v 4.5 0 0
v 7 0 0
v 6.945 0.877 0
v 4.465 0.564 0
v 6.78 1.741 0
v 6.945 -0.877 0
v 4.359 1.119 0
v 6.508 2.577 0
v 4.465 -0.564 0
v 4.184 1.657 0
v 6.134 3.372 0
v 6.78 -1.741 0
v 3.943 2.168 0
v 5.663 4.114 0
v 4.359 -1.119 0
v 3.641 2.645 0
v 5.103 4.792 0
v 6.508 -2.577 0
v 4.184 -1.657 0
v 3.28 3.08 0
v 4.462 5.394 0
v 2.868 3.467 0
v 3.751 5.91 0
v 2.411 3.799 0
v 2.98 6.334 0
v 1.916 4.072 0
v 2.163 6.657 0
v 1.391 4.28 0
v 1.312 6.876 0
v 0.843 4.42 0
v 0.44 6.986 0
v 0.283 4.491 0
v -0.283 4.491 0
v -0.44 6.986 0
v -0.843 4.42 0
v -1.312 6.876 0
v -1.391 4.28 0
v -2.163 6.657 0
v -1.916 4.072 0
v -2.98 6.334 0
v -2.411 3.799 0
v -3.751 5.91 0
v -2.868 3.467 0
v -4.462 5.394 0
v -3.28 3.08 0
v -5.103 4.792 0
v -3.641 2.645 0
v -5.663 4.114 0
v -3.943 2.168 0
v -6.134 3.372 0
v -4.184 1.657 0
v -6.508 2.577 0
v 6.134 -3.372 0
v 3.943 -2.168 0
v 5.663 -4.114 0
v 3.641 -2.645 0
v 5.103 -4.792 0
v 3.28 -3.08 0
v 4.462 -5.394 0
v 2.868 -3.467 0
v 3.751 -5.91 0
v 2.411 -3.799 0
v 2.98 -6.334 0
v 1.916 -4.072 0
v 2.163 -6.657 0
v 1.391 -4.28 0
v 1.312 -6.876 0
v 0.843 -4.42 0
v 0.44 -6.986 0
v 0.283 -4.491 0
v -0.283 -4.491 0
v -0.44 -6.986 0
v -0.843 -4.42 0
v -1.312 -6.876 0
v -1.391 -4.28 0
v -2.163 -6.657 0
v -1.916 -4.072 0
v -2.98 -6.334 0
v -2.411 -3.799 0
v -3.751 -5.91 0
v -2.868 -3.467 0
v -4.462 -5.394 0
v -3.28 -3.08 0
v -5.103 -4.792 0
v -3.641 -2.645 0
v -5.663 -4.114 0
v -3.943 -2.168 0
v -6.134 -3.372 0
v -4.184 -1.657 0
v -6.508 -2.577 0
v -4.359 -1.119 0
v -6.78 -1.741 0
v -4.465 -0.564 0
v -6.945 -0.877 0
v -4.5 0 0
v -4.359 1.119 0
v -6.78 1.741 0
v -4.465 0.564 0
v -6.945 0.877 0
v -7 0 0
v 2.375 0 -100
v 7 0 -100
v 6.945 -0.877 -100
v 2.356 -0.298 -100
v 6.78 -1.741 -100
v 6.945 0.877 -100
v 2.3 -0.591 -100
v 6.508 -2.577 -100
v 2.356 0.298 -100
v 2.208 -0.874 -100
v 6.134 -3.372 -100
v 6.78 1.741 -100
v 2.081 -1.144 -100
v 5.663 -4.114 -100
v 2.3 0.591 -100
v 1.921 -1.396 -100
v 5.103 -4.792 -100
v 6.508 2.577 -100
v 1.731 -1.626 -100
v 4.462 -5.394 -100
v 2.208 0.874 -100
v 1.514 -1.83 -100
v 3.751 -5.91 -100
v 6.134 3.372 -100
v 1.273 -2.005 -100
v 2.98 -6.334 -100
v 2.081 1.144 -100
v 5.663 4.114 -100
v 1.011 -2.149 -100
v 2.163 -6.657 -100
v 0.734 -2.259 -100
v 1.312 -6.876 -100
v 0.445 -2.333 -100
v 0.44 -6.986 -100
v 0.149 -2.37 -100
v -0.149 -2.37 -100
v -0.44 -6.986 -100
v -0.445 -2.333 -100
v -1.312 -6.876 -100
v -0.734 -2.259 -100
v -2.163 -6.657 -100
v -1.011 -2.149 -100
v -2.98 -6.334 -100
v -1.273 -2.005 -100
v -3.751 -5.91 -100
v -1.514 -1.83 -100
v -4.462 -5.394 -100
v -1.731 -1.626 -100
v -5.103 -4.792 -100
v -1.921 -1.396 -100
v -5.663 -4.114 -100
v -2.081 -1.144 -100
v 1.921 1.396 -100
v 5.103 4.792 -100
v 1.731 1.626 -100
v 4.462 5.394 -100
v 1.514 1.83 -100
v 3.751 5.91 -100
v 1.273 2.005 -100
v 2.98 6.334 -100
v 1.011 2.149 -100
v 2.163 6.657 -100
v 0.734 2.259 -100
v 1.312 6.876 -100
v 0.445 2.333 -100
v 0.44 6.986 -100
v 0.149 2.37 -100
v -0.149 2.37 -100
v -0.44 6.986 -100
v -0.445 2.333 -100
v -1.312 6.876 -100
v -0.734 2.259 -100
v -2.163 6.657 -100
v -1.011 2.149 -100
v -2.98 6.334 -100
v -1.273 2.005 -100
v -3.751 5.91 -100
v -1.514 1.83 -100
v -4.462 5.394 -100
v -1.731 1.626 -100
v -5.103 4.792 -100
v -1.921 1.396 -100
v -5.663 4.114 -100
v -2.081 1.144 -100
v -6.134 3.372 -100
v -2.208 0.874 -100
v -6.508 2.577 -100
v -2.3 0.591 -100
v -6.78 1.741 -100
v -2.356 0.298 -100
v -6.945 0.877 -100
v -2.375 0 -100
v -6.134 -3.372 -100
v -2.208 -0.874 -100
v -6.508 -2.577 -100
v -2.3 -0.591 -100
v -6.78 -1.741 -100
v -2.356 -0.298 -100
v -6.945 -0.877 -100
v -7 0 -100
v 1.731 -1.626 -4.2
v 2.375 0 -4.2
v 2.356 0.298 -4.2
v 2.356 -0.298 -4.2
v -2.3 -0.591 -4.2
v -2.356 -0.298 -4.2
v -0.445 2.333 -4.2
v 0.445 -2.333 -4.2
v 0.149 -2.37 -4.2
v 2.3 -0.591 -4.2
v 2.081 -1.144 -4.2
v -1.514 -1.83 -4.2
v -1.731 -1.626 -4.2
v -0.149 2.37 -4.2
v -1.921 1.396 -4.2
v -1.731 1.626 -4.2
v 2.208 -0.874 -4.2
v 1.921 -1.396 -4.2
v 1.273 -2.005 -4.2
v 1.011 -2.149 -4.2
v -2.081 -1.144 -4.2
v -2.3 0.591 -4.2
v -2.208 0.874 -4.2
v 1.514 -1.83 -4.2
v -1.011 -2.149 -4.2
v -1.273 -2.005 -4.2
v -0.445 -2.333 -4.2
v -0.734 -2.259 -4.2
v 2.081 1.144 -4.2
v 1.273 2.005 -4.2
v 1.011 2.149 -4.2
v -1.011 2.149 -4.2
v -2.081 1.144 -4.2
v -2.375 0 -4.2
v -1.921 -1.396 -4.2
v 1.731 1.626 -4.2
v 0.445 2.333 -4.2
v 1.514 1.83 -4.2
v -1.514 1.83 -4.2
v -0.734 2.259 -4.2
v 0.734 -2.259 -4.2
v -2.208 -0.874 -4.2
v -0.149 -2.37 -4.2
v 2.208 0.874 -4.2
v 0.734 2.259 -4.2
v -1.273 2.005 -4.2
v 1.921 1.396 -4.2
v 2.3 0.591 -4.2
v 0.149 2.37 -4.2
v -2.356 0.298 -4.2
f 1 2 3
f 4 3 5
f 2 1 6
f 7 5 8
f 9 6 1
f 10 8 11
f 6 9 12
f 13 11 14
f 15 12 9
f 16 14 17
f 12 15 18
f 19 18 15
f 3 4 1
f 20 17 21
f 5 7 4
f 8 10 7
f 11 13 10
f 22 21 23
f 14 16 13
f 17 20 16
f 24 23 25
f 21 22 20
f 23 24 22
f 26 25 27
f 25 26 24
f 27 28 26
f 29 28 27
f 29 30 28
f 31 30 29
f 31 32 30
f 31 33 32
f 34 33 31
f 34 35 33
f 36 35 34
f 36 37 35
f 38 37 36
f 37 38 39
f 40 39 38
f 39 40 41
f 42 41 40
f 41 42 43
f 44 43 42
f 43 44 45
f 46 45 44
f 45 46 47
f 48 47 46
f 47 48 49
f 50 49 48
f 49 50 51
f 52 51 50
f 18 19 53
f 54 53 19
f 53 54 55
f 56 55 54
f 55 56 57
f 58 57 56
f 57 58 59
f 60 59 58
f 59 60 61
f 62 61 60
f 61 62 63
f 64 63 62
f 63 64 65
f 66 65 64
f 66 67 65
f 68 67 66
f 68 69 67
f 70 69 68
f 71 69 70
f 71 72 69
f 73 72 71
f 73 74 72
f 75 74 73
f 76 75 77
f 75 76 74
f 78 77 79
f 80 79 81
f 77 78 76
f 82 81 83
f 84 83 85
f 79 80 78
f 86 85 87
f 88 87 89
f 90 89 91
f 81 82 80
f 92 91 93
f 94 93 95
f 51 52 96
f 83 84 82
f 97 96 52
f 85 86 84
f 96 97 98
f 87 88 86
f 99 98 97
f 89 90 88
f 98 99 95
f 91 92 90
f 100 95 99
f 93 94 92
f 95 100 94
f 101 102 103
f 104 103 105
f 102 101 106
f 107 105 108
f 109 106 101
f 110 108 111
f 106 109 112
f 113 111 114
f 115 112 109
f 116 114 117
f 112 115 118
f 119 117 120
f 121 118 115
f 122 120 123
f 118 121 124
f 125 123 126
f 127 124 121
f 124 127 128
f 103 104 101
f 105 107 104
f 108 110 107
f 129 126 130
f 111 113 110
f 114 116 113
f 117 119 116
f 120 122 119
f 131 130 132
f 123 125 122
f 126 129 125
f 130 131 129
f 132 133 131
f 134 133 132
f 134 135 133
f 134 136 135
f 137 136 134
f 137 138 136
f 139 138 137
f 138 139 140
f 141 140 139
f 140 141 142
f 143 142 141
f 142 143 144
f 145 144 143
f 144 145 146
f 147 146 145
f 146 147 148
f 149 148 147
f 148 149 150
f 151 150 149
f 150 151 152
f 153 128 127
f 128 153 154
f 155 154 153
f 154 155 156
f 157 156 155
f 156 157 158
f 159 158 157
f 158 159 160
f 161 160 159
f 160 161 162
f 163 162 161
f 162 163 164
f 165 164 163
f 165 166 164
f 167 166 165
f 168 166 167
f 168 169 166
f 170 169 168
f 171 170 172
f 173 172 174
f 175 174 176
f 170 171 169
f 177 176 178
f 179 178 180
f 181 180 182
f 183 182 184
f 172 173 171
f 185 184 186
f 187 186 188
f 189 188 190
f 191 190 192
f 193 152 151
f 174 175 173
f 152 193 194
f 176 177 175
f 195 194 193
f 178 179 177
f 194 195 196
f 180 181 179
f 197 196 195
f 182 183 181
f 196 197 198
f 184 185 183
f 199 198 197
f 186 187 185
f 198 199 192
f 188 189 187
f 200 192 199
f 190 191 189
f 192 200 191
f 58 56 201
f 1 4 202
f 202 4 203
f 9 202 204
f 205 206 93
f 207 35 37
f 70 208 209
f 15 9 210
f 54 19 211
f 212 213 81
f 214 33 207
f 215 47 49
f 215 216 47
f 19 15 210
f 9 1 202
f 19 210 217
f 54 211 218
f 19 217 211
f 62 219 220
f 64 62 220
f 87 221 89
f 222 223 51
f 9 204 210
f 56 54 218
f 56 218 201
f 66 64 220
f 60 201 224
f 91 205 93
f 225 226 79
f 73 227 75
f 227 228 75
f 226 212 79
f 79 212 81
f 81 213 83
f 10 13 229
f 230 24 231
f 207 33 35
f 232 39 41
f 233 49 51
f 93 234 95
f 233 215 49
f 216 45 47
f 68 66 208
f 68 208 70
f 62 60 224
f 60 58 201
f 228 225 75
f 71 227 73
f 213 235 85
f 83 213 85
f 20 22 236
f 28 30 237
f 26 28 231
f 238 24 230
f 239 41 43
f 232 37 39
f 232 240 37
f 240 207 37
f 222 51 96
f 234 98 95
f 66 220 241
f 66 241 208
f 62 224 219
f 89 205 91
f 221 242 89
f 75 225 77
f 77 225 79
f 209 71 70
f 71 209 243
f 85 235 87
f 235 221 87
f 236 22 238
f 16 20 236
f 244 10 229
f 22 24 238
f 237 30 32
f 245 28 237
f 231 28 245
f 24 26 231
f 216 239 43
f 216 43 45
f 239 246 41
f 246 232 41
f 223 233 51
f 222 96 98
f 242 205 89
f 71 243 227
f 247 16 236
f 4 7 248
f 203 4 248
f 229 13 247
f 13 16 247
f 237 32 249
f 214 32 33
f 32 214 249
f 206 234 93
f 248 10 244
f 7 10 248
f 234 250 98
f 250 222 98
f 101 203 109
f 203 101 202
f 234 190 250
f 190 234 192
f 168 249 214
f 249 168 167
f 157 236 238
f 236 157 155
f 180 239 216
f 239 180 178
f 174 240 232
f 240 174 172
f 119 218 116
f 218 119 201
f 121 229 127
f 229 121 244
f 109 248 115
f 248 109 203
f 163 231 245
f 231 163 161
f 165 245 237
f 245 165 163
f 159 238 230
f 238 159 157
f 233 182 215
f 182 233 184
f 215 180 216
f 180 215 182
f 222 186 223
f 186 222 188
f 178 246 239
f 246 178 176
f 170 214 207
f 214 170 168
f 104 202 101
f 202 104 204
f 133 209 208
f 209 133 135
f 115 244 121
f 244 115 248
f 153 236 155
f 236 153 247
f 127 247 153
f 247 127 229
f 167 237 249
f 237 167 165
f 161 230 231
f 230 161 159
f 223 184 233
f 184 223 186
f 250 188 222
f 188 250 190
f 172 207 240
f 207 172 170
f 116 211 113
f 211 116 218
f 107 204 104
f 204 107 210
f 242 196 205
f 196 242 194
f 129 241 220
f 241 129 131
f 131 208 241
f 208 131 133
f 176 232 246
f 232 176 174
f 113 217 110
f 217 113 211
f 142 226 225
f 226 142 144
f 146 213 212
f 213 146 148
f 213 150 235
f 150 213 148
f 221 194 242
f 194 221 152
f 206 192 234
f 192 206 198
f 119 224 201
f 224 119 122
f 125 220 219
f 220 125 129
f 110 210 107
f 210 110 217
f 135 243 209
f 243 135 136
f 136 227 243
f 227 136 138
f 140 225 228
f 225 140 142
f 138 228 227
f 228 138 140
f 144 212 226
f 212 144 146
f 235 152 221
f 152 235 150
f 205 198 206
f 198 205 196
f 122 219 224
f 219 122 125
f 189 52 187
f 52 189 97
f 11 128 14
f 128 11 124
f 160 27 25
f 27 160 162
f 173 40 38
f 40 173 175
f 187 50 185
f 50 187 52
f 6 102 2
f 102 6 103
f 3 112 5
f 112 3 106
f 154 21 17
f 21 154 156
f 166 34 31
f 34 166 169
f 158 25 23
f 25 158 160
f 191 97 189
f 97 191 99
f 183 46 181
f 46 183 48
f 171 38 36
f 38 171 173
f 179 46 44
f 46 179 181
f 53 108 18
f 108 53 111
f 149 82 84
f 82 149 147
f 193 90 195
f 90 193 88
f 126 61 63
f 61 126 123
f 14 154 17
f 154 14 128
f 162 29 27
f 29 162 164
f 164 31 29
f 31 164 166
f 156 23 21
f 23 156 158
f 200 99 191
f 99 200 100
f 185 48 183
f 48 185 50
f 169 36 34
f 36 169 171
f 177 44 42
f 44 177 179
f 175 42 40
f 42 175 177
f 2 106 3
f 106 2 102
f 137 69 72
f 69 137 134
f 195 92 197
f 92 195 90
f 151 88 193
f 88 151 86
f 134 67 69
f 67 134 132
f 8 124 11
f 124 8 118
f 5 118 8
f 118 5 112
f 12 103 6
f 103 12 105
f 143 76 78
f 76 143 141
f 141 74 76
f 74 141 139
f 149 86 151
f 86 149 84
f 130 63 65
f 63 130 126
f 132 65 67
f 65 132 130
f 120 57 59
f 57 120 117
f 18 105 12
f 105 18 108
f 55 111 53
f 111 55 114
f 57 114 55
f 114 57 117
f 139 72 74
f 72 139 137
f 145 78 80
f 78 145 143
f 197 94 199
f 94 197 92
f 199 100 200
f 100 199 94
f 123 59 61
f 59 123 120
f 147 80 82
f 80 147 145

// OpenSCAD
$fn = 50;


difference() {
	union() {
		translate(v = [0, 0, -100.0000000000]) {
			cylinder(h = 100, r = 7.0000000000);
		}
	}
	union() {
		translate(v = [0, 0, 0]) {
			rotate(a = [0, 0, 0]) {
				difference() {
					union() {
						#translate(v = [0, 0, -100.0000000000]) {
							cylinder(h = 100, r = 2.2500000000);
						}
						#translate(v = [0, 0, -4.2000000000]) {
							cylinder(h = 4.2000000000, r = 7.0000000000, r1 = 2.3750000000, r2 = 4.5000000000);
						}
						#translate(v = [0, 0, -100.0000000000]) {
							cylinder(h = 100, r = 2.3750000000);
						}
						#translate(v = [0, 0, -100.0000000000]) {
							cylinder(h = 100, r = 2.2500000000);
						}
					}
					union();
				}
			}
		}
	}
}
